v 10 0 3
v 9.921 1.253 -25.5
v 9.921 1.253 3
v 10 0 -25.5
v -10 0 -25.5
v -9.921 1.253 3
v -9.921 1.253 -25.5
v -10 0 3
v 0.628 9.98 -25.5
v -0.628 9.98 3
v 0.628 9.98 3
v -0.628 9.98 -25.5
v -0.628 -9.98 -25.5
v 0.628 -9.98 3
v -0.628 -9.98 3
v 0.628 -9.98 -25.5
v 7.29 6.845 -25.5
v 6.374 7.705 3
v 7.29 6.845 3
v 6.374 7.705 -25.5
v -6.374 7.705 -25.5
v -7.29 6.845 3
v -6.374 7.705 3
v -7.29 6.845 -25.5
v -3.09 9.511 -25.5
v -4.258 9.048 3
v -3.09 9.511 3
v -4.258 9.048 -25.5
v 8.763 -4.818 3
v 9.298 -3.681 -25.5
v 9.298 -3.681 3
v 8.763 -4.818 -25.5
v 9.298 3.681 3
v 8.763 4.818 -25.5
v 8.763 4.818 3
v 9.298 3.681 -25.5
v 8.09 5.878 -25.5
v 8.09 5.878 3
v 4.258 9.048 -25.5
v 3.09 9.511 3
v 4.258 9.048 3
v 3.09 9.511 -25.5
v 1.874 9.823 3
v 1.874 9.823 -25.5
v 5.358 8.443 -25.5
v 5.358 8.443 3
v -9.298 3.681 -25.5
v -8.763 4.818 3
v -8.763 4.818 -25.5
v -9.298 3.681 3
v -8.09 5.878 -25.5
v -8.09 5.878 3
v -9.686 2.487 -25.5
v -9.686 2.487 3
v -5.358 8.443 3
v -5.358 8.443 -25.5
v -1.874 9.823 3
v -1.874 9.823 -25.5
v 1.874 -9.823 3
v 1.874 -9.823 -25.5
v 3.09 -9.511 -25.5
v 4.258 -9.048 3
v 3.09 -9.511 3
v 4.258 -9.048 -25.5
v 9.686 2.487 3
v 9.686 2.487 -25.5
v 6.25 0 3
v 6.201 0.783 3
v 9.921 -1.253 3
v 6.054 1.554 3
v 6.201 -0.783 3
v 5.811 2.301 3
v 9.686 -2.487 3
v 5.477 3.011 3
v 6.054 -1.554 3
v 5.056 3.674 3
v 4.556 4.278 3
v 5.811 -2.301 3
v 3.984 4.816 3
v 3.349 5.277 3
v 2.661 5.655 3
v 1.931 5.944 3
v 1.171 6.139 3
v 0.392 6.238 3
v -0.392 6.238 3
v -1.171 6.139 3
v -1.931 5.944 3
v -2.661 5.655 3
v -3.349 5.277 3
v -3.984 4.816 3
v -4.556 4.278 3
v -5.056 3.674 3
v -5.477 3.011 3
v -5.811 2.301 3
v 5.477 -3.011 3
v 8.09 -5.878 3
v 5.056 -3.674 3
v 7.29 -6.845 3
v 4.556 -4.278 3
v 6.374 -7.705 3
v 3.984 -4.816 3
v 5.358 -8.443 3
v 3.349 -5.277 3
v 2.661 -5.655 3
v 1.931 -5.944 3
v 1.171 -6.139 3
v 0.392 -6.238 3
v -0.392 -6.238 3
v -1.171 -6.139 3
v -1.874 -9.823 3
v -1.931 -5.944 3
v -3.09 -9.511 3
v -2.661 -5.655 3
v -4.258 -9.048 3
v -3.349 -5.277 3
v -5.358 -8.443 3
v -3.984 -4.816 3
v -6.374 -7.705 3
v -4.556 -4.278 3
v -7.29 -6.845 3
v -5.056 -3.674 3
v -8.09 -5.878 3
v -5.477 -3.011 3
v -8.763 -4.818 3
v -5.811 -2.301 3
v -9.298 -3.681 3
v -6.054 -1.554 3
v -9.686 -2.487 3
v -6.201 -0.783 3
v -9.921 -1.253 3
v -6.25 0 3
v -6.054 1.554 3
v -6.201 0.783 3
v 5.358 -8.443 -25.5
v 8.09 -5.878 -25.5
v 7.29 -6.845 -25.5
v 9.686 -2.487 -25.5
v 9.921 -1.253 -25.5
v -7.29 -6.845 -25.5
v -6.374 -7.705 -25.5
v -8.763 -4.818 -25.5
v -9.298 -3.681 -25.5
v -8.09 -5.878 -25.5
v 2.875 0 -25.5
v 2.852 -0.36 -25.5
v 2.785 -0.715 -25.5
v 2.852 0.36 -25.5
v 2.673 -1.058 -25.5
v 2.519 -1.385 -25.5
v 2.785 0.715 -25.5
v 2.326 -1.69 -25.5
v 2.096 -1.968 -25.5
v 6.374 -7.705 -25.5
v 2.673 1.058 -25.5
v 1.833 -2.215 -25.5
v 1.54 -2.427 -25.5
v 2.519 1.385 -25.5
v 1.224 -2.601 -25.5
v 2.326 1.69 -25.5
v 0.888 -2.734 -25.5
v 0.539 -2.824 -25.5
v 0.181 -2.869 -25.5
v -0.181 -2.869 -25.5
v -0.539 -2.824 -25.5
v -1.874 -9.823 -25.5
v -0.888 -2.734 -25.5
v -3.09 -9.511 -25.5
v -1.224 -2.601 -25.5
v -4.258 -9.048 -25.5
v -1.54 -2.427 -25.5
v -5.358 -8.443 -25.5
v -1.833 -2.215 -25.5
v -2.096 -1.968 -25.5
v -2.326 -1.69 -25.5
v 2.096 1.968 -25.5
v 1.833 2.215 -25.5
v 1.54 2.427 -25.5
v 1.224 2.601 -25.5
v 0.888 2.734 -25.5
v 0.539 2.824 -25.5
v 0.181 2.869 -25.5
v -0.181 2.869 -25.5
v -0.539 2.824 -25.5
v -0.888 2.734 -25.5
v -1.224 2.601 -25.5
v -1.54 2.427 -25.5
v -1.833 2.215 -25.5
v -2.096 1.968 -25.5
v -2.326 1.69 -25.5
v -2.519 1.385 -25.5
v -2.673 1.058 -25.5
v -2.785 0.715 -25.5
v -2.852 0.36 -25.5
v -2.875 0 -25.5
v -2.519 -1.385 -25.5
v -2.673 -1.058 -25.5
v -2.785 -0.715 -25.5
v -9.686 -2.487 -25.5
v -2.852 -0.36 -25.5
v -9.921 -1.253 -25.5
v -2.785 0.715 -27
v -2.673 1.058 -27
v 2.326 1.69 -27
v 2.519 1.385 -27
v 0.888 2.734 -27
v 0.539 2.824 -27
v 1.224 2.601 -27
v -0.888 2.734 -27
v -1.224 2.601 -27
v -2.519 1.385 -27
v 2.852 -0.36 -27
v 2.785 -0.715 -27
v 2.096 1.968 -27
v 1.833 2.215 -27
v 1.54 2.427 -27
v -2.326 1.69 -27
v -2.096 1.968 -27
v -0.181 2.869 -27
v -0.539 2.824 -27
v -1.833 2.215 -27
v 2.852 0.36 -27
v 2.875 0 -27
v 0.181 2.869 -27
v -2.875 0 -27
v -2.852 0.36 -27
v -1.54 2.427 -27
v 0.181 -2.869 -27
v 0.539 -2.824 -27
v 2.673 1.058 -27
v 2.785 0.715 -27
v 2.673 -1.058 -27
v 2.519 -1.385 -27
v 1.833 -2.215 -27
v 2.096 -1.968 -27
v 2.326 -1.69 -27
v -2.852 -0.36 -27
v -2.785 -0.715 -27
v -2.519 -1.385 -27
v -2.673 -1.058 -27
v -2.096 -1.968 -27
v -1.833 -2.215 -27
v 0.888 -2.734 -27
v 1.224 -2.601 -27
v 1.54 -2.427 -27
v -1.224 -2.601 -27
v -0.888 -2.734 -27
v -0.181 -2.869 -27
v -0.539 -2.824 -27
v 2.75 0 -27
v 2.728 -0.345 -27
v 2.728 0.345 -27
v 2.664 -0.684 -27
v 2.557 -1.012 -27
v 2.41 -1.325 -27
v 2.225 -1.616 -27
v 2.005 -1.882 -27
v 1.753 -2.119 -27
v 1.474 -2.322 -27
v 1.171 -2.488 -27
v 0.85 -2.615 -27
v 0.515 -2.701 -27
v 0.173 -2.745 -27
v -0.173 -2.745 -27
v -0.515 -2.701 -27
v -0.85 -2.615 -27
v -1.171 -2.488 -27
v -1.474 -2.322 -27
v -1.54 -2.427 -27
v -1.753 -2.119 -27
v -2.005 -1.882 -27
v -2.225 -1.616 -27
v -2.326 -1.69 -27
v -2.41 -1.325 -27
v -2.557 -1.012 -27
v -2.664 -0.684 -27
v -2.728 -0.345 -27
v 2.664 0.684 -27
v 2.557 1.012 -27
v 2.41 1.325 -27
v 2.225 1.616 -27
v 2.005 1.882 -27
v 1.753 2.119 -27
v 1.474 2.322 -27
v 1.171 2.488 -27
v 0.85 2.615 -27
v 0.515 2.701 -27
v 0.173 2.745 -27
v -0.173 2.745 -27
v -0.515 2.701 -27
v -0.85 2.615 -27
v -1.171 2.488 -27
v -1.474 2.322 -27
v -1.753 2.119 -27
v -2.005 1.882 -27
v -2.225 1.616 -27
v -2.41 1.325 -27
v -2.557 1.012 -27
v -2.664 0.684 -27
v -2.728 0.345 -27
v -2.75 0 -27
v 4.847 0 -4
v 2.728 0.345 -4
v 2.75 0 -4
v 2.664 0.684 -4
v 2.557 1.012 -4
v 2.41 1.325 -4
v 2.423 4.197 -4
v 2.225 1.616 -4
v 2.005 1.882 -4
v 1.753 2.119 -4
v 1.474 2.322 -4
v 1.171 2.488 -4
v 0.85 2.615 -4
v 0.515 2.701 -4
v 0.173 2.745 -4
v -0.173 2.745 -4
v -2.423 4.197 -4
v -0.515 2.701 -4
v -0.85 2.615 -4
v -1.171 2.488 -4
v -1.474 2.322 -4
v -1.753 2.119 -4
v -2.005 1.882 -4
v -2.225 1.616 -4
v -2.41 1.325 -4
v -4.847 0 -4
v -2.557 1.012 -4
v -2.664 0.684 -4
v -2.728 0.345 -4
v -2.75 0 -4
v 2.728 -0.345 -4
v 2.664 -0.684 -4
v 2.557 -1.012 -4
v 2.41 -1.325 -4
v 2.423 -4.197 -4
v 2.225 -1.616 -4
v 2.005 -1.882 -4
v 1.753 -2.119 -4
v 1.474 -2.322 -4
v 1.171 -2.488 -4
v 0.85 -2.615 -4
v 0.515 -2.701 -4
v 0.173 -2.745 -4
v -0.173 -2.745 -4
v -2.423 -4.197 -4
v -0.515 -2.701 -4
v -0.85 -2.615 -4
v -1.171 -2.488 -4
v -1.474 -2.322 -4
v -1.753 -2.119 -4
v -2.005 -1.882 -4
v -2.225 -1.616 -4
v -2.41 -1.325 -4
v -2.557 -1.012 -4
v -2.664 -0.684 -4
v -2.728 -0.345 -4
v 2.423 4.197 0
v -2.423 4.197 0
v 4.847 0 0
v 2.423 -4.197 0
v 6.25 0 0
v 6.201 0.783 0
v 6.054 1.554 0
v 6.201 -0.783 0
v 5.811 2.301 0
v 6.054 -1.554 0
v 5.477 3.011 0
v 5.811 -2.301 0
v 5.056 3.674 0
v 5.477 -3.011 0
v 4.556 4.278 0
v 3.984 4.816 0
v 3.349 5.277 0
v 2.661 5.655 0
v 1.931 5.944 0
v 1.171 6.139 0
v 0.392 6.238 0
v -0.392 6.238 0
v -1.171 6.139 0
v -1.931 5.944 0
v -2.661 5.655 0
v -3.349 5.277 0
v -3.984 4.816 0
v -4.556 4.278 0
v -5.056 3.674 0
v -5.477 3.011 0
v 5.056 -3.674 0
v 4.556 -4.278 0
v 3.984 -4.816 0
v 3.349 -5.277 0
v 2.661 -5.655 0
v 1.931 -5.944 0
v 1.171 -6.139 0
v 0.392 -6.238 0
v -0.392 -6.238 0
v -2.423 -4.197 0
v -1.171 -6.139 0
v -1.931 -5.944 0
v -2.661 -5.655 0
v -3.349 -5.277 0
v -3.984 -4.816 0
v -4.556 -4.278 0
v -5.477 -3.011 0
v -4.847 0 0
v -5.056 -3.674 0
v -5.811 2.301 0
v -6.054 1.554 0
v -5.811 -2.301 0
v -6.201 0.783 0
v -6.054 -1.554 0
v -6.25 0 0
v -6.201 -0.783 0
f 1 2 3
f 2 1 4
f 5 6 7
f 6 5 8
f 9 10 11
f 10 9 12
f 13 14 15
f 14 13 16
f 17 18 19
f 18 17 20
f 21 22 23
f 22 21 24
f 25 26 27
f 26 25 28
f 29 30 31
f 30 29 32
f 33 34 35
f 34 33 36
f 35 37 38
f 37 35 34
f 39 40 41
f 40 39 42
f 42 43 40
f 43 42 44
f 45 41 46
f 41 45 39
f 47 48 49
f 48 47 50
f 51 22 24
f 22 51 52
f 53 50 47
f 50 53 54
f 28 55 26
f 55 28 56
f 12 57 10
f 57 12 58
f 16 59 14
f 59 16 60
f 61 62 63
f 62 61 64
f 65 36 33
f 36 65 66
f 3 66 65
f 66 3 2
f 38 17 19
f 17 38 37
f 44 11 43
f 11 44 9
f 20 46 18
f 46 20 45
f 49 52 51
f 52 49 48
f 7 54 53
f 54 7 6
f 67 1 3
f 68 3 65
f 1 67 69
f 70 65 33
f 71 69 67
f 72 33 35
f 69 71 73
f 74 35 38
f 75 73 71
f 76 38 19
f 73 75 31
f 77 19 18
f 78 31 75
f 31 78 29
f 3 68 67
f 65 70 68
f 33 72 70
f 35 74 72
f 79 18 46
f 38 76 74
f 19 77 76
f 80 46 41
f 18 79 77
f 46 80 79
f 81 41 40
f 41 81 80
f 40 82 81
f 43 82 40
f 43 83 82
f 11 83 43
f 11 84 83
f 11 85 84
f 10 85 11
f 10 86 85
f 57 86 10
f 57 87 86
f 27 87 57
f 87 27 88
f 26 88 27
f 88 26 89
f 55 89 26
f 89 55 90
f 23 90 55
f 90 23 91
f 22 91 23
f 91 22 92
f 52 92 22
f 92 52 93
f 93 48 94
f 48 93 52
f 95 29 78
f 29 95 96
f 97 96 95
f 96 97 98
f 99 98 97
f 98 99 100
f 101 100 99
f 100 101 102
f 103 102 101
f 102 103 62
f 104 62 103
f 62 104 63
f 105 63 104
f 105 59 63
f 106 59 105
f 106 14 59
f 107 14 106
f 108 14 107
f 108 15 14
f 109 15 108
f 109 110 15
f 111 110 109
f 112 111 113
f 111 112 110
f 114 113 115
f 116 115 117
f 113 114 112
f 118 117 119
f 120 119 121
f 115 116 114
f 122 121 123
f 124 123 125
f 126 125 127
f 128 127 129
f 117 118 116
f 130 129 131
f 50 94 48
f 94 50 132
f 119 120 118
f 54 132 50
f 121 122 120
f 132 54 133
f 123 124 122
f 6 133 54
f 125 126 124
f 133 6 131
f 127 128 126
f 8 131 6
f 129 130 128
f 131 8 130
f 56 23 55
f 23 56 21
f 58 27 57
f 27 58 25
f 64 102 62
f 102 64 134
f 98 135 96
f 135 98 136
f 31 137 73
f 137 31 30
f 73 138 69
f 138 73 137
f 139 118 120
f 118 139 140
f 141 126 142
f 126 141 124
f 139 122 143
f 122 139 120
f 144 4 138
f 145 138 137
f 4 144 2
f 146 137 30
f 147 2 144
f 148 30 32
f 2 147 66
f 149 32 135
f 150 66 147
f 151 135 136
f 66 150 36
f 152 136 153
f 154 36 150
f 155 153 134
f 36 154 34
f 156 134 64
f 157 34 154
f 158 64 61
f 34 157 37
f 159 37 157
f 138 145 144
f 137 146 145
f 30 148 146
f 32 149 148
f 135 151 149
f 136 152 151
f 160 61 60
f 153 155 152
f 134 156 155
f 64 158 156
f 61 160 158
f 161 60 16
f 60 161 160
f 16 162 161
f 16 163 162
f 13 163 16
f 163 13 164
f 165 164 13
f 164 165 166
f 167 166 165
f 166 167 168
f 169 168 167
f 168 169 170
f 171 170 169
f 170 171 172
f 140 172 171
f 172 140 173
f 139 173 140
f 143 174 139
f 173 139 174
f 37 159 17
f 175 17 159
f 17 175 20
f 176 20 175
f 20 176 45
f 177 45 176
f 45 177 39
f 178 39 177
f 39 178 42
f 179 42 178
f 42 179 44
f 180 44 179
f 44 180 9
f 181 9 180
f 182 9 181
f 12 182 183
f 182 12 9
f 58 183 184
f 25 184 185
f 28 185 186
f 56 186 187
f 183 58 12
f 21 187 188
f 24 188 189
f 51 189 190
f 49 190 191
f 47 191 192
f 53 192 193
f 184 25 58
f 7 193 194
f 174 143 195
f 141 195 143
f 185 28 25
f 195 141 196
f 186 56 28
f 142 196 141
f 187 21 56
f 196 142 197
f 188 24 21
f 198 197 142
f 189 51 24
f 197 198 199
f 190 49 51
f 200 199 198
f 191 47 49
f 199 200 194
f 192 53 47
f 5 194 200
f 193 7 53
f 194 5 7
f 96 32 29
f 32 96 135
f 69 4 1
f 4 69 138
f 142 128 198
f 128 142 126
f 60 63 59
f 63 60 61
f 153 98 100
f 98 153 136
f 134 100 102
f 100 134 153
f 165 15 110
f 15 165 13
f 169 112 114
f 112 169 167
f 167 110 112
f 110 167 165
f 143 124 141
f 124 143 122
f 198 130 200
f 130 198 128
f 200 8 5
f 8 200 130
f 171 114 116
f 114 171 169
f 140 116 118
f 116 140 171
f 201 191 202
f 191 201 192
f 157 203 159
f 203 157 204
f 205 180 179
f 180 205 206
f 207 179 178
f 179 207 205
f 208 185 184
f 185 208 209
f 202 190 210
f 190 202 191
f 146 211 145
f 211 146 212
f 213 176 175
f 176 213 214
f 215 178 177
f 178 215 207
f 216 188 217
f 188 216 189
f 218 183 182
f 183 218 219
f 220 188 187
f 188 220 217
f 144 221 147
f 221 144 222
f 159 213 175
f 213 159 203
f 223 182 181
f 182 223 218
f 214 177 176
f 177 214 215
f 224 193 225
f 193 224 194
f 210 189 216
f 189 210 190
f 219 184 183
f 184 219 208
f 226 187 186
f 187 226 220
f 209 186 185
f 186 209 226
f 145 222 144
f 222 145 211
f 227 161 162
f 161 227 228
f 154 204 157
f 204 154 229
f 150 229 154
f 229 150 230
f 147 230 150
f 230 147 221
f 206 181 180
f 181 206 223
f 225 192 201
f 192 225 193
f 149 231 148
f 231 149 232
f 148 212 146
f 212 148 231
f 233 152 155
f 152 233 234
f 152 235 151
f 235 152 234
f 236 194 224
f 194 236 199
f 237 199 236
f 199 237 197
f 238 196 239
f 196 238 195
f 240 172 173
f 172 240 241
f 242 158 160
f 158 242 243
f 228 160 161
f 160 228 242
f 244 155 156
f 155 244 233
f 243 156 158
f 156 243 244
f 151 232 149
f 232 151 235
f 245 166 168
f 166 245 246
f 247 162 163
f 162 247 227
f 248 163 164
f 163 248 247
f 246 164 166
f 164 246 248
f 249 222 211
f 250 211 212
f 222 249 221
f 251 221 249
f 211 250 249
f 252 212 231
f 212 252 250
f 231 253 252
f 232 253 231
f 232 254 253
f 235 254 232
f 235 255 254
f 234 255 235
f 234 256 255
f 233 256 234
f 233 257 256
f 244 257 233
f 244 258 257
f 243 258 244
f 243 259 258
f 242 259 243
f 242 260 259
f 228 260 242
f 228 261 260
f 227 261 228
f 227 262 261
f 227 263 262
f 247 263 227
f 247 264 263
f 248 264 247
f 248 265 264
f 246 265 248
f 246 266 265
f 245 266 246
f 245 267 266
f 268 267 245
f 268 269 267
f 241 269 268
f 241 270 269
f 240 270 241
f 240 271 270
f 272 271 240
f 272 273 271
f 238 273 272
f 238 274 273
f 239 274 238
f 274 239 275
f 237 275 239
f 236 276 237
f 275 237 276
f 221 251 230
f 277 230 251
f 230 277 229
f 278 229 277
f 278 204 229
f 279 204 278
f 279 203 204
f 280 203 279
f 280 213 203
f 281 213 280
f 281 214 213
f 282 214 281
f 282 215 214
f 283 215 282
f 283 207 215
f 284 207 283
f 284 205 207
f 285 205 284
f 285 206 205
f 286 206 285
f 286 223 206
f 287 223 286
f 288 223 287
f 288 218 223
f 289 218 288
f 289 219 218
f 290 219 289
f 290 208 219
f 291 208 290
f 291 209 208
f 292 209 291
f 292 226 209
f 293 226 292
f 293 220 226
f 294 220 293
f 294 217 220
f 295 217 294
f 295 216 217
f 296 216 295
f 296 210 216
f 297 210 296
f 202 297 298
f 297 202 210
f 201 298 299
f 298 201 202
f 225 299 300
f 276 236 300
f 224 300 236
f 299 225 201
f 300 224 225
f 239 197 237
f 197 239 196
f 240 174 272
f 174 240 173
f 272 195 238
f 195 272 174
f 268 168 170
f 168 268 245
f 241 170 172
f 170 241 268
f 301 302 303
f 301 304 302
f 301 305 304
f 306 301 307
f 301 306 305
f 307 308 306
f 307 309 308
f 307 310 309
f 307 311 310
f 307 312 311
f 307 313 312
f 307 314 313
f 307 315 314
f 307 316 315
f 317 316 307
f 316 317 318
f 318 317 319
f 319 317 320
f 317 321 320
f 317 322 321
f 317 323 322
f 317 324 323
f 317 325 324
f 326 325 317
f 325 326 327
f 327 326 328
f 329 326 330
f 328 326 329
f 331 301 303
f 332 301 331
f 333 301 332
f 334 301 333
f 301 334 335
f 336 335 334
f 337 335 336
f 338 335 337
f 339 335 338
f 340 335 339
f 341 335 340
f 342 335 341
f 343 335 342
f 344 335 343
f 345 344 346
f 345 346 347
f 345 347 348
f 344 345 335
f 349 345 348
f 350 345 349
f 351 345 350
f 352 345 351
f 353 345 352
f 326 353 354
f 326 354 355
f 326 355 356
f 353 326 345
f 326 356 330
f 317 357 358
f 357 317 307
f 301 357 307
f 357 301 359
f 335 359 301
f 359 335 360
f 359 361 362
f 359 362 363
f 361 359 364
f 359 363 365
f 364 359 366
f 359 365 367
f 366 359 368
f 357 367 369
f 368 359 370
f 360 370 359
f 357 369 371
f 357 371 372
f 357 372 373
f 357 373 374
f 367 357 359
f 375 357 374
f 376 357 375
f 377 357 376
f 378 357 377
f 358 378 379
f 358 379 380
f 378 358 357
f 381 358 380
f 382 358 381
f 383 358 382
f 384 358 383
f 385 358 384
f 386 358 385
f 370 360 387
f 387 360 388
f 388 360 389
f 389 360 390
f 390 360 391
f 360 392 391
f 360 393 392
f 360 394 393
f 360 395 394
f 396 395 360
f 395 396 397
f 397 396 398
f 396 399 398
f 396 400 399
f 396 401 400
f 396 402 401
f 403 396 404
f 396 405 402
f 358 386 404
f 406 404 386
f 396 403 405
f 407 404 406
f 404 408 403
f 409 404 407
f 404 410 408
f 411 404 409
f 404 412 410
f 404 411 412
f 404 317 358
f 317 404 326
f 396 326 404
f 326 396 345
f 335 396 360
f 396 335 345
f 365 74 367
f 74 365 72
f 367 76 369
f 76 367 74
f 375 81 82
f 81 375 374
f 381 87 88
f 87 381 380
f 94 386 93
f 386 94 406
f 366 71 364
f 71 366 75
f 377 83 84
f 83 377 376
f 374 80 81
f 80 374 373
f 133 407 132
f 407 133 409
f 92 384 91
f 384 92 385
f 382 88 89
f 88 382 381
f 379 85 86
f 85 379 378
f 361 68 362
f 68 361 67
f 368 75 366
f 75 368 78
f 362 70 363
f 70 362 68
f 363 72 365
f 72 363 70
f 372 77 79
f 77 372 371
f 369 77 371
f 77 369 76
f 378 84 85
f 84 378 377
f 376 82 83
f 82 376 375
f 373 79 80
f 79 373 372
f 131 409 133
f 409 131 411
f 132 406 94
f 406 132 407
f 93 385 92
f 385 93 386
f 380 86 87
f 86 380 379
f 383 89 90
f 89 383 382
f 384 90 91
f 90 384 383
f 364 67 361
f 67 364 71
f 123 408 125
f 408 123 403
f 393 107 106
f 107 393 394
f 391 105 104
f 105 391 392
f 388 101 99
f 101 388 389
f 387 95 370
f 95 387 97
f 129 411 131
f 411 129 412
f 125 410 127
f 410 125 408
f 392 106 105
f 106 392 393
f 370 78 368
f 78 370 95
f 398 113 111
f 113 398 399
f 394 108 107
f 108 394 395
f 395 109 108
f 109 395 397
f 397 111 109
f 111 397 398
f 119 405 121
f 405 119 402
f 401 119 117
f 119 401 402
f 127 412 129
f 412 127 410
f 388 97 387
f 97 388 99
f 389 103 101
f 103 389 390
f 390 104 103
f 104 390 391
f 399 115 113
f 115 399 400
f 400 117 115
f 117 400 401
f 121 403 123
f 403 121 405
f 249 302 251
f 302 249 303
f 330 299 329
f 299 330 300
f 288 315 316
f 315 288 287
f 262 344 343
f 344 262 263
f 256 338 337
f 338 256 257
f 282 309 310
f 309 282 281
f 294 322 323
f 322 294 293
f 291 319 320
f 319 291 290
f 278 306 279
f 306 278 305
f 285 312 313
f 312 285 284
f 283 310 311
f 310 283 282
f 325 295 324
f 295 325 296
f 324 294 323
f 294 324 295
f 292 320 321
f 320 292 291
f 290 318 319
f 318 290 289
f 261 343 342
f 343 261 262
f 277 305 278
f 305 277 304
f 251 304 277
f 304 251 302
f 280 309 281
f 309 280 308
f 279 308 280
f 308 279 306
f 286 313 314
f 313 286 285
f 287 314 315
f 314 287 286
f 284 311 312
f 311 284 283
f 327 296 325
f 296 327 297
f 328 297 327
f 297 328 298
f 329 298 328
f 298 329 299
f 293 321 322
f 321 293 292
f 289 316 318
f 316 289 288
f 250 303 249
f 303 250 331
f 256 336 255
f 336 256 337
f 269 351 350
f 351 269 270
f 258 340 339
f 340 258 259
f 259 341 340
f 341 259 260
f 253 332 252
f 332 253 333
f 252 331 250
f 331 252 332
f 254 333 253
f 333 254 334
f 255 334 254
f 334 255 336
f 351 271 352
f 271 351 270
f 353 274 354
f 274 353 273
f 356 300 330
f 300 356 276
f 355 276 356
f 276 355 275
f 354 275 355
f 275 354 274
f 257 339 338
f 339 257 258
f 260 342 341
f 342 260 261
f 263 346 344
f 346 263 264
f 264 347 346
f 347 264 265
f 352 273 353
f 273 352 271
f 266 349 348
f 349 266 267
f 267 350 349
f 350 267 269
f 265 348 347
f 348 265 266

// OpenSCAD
$fn = 50;

difference() {
	union() {
		translate(v = [0, 0, -25.5]) {
			cylinder(h = 28.5, r = 10.0);
		}
		#translate(v = [0, 0, -27.0]) {
			cylinder(h = 27, r = 2.875);
		}
	}
	union() {
		translate(v = [0, 0, 0]) {
			rotate(a = [0, 0, 0]) {
				difference() {
					union() {
						translate(v = [0, 0, -4]) {
							linear_extrude(height = 4) {
								polygon(points = [[4.8468, 0.0], [2.4234000000000004, 4.197451927062417], [-2.423399999999999, 4.197451927062417], [-4.8468, 5.935618106107392e-16], [-2.423400000000002, -4.197451927062416], [2.423399999999997, -4.197451927062419]]);
							}
						}
					}
					union();
				}
			}
		}
		#cylinder(h = 3, r = 6.25);
		#translate(v = [0, 0, -100.0]) {
			cylinder(h = 200, r = 2.75);
		}
	}
}
